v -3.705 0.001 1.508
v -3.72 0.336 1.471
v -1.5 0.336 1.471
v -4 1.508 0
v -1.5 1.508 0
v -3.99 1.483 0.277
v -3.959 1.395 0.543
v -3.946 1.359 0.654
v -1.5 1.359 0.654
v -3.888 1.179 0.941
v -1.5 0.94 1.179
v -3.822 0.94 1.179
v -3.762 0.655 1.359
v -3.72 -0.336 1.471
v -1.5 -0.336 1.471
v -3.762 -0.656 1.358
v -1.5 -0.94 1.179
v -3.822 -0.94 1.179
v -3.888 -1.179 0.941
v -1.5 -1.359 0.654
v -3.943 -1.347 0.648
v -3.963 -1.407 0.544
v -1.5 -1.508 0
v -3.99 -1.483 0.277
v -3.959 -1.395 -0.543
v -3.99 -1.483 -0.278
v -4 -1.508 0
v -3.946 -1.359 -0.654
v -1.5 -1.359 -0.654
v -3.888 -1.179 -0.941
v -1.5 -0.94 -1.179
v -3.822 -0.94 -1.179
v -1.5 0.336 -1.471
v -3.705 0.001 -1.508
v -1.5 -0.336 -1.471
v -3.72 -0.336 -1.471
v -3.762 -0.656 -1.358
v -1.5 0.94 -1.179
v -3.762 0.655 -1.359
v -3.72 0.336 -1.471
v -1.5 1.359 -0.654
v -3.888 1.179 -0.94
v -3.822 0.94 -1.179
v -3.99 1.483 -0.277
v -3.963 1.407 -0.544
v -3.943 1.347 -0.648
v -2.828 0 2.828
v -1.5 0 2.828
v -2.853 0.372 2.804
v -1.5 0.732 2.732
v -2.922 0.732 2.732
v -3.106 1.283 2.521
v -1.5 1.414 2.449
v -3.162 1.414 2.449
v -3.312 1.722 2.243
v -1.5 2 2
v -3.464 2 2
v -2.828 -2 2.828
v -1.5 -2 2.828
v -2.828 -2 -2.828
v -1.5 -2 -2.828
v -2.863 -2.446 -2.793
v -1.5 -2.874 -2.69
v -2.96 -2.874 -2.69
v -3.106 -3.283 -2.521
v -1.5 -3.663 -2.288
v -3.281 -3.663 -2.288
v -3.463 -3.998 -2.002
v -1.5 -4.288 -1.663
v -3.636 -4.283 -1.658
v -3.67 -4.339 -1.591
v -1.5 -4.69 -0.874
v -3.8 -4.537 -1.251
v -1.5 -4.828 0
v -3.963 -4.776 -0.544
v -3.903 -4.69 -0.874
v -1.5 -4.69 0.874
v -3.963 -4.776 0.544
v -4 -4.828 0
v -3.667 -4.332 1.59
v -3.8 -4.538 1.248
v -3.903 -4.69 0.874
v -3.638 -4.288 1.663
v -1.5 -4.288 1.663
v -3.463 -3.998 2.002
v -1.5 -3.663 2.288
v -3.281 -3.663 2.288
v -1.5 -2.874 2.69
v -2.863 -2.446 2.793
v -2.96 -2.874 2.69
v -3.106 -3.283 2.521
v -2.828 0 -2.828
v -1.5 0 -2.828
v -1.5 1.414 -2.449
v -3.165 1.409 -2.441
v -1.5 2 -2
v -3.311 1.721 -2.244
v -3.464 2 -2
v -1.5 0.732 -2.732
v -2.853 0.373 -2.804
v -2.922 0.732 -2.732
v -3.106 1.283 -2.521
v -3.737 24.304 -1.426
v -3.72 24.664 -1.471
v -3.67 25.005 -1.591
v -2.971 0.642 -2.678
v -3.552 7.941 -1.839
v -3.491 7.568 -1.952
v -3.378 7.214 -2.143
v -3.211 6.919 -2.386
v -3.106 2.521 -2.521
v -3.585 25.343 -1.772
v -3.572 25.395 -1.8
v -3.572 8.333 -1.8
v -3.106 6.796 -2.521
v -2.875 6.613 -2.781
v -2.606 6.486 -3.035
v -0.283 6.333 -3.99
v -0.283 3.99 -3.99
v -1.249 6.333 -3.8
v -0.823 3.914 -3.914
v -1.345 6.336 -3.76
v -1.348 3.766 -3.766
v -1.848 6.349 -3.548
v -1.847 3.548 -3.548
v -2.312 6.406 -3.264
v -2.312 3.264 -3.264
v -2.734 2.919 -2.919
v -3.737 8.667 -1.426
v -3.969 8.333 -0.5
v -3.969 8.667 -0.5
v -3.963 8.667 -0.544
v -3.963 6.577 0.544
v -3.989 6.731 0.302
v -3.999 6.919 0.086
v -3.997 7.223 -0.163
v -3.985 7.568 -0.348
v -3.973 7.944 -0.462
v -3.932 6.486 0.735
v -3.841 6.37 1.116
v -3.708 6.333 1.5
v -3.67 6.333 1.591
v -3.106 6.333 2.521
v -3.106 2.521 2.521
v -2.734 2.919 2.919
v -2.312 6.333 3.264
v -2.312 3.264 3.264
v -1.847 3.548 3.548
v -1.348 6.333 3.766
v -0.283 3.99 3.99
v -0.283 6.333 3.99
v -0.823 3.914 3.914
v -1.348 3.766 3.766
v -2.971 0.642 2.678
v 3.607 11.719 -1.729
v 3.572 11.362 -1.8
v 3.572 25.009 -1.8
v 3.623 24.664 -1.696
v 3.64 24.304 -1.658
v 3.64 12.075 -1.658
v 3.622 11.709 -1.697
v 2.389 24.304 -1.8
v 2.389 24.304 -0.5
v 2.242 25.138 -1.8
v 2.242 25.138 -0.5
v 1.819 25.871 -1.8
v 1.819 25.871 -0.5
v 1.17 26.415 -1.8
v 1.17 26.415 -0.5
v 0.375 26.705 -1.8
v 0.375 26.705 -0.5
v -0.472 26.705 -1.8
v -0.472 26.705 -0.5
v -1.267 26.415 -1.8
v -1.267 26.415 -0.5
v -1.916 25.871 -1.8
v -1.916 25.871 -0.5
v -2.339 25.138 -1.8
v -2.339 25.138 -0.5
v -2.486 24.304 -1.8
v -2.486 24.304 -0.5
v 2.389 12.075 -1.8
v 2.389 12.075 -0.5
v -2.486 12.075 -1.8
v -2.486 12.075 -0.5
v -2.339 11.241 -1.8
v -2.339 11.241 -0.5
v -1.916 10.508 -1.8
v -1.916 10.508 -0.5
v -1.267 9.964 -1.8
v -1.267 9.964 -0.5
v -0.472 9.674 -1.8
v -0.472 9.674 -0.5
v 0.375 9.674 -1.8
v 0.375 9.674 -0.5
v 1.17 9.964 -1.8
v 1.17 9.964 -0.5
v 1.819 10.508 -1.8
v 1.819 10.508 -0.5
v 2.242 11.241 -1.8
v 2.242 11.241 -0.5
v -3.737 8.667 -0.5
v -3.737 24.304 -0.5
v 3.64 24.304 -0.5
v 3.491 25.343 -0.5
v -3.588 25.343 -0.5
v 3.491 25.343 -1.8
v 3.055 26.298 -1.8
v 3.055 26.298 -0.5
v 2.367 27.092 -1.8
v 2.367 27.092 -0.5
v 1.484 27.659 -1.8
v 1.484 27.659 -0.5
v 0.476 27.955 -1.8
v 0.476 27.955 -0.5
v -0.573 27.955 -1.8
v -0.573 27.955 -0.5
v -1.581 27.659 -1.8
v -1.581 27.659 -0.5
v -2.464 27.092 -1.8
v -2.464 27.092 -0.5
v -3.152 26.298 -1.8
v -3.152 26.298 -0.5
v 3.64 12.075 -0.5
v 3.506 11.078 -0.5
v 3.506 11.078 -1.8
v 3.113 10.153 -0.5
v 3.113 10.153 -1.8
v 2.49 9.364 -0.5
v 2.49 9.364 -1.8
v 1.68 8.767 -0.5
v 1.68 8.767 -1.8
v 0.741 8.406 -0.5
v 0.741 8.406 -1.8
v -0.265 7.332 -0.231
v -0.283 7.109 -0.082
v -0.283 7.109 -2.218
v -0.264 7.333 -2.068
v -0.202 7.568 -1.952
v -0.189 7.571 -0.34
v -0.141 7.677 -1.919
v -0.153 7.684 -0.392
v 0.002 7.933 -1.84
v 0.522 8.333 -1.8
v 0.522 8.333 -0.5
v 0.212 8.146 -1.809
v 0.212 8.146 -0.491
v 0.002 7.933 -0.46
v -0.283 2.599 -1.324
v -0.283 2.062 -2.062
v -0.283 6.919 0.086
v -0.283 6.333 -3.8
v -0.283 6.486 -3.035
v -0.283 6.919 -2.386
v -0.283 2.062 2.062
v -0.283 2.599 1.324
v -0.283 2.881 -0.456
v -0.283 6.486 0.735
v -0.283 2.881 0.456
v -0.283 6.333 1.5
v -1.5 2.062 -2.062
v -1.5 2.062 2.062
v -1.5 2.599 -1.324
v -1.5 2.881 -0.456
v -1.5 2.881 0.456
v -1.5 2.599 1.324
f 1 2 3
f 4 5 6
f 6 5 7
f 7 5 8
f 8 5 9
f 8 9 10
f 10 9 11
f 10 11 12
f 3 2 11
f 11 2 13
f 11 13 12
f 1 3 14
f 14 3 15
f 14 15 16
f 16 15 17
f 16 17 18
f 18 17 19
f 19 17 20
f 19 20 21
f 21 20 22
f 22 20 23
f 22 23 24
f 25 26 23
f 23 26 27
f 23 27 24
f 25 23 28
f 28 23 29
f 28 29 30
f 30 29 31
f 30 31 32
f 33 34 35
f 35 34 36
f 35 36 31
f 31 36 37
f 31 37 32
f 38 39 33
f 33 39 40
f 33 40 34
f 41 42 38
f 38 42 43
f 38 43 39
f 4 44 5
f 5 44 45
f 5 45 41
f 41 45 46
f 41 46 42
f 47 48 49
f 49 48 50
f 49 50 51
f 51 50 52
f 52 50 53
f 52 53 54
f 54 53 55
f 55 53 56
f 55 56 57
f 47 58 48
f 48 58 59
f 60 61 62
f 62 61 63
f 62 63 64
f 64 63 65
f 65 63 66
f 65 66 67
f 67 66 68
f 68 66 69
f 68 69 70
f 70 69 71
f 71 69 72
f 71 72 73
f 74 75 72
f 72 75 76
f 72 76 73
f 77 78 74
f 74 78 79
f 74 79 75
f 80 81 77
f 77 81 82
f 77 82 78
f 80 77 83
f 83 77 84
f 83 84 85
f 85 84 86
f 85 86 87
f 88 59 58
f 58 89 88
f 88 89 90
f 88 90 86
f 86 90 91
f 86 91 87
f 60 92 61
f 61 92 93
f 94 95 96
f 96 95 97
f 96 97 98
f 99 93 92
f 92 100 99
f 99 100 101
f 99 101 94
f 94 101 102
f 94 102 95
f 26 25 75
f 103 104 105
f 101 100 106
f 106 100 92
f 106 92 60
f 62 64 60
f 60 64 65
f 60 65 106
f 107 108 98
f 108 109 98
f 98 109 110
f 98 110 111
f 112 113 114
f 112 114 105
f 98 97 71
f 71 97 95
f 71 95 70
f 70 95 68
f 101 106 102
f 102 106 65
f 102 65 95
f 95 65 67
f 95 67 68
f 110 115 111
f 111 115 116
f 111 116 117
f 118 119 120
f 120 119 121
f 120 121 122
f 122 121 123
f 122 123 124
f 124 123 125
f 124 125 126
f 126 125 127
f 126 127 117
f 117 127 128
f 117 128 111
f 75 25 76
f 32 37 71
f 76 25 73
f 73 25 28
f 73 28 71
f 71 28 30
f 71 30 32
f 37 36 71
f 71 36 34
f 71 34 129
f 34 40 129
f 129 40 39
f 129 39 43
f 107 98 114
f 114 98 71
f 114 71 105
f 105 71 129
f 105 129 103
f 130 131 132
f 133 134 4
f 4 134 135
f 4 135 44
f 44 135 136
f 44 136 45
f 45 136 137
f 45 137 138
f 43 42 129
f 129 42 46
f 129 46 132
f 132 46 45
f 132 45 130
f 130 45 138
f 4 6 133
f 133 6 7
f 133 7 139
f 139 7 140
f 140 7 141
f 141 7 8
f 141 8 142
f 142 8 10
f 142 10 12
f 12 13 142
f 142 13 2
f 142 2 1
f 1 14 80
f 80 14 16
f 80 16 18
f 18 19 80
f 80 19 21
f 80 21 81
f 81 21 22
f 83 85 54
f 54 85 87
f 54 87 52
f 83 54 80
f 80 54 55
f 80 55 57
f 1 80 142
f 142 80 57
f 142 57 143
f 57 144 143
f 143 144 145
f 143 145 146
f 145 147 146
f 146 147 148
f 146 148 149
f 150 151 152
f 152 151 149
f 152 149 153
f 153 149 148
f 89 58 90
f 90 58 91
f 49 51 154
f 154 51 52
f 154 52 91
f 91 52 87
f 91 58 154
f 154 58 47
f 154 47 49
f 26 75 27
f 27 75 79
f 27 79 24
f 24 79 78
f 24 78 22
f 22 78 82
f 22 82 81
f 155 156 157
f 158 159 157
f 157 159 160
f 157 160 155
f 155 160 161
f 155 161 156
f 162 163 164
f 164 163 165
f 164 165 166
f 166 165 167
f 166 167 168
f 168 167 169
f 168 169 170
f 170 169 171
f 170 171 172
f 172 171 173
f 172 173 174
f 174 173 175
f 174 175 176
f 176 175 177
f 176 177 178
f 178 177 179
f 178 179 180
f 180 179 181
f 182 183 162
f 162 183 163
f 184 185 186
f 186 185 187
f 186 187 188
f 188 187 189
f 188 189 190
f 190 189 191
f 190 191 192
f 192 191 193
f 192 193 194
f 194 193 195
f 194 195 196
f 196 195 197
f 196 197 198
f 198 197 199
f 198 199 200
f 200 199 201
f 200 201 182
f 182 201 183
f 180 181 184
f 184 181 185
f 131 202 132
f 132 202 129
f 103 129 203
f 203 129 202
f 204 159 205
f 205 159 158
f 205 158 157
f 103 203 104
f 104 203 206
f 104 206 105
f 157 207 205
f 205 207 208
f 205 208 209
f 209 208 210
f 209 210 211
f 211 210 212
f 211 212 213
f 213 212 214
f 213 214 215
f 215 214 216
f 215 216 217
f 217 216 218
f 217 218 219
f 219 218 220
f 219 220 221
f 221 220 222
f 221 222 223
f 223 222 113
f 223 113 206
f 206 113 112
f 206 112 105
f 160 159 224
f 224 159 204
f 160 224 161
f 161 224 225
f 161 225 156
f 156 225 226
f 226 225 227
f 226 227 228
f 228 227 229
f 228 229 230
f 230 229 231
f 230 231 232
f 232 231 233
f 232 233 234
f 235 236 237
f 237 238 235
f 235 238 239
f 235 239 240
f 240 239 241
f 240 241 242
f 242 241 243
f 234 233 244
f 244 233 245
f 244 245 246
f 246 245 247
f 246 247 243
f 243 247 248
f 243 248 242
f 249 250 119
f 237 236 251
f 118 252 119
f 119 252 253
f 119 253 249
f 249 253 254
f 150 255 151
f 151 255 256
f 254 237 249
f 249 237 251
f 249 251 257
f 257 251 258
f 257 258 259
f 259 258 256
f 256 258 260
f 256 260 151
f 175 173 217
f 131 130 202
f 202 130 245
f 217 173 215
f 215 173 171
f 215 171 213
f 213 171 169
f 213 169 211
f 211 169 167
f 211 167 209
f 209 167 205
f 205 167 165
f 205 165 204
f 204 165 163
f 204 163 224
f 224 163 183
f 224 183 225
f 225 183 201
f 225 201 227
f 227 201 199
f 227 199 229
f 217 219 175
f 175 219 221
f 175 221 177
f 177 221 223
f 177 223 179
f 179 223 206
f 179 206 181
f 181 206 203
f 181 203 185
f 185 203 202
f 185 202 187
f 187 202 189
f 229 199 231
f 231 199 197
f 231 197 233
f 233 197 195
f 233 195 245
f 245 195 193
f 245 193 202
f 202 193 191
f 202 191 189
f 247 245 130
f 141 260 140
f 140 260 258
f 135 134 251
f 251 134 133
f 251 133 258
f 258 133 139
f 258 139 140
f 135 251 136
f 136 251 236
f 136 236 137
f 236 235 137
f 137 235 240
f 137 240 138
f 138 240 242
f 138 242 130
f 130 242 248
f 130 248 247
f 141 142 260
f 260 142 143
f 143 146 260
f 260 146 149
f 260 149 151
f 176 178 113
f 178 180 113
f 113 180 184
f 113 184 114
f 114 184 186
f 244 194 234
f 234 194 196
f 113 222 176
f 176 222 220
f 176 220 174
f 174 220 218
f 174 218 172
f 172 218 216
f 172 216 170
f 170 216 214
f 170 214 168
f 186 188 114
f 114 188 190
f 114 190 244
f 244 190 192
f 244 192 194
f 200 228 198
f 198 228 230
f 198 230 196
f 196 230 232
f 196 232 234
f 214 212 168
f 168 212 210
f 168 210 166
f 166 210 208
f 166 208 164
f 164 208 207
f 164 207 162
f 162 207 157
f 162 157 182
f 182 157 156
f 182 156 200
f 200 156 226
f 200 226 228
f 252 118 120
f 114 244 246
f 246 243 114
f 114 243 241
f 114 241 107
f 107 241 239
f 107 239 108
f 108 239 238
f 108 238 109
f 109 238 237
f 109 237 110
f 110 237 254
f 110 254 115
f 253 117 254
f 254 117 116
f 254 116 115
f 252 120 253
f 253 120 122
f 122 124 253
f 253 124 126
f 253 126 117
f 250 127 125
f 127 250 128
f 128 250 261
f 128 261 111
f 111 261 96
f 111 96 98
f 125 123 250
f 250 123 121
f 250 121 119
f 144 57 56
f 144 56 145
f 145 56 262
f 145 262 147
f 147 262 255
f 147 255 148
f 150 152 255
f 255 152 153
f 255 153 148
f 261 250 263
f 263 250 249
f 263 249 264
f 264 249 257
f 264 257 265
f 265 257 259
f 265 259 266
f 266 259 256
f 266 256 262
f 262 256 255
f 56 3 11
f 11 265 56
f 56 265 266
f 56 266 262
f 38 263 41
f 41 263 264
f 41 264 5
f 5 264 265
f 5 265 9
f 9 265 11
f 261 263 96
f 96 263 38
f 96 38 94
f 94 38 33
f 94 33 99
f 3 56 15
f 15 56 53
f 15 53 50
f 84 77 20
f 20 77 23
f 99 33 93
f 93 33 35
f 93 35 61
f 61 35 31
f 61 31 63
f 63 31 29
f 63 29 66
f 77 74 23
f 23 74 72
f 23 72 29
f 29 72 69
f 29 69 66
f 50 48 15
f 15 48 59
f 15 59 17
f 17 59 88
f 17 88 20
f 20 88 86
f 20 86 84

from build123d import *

# Parameters (mm, degrees)
BOSS_EXTRUDE1_START = -8
SKETCH1_R           = 4
BOSS_EXTRUDE1_DEPTH = 38.1
SKETCH2_OUTSIDE_W   = 17.948
SKETCH2_OUTSIDE_H   = 48.048
CUT_EXTRUDE1_DEPTH  = 5
CUT_EXTRUDE2_DEPTH  = 30.290925305
SKETCH4_R           = 1.508332
CUT_EXTRUDE3_DEPTH  = 29.54645306
CUT_EXTRUDE4_DEPTH  = 1.216665


with BuildPart() as part:
    # Sketch1 → Boss-Extrude1 (new body)
    with BuildSketch(Plane(origin=(0, 0, 0), x_dir=(1, 0, 0), z_dir=(0, 1, 0)).offset(BOSS_EXTRUDE1_START)):
        with Locations(Location((0, 0, 0), (0, 0, 90))):
            Circle(SKETCH1_R)
    extrude(amount=BOSS_EXTRUDE1_DEPTH)

    # Sketch2 outside → Cut-Extrude1 (cut, symmetric)
    # profile 1 of 2: a face of its own
    with BuildSketch(Plane.XY):
        with Locations((0, 11.05)):
            Rectangle(SKETCH2_OUTSIDE_W, SKETCH2_OUTSIDE_H)
        with BuildLine():
            Line((-0.283333, -8), (-0.283333, 7.109115))
            ThreePointArc((-0.283333, 7.109115), (0.003787455, 7.935683585), (0.741491463, 8.406264691))
            ThreePointArc((0.741491463, 8.406264691), (2.828033272, 9.737268918), (3.64013247, 12.075157679))
            Line((3.64013247, 12.075157679), (3.64013247, 24.303947679))
            ThreePointArc((3.64013247, 24.303947679), (-0.04853801, 27.99261816), (-3.73720849, 24.303947679))
            Line((-3.73720849, 24.303947679), (-3.73720849, 8.666658))
            Line((-3.73720849, 8.666658), (-4, 8.666658))
            Line((-4, 8.666658), (-4, -8))
            Line((-4, -8), (-0.283333, -8))
        make_face(mode=Mode.SUBTRACT)
    # profile 2 of 2: a face of its own
    with BuildSketch(Plane.XY):
        with BuildLine():
            Line((2.38936199, 24.303947679), (2.38936199, 12.075157679))
            ThreePointArc((2.38936199, 12.075157679), (-0.04853801, 9.637257679), (-2.48643801, 12.075157679))
            Line((-2.48643801, 12.075157679), (-2.48643801, 24.303947679))
            ThreePointArc((-2.48643801, 24.303947679), (-0.04853801, 26.741847679), (2.38936199, 24.303947679))
        make_face()
    extrude(amount=CUT_EXTRUDE1_DEPTH, both=True, mode=Mode.SUBTRACT)

    # Sketch3 → Cut-Extrude2 (cut, through all)
    with BuildSketch(Plane(origin=(3.64013247, 0, 0), x_dir=(0, 0, -1), z_dir=(1, 0, 0))):
        with BuildLine():
            Line((-1.5, 6.333332), (-6.5, 6.333332))
            Line((-6.5, 6.333332), (-6.5, 36.333332))
            Line((-6.5, 36.333332), (0.5, 36.333332))
            Line((0.5, 36.333332), (0.5, 8.333332))
            ThreePointArc((0.5, 8.333332), (-0.085786438, 6.919118438), (-1.5, 6.333332))
        make_face()
        with BuildLine():
            Line((1.8, 36.333332), (1.8, 8.333332))
            ThreePointArc((1.8, 8.333332), (2.385786438, 6.919118438), (3.8, 6.333332))
            Line((3.8, 6.333332), (5.8, 6.333332))
            Line((5.8, 6.333332), (5.8, 36.333332))
            Line((5.8, 36.333332), (1.8, 36.333332))
        make_face()
    extrude(amount=-CUT_EXTRUDE2_DEPTH, mode=Mode.SUBTRACT)

    # Sketch4 → Cut-Extrude3 (cut, through all)
    with BuildSketch(Plane(origin=(-0.283333, 0, 0), x_dir=(0, 0, -1), z_dir=(1, 0, 0))):
        with Locations(Location((0, 0, 0), (0, 0, 90))):
            Circle(SKETCH4_R)
        with BuildLine():
            Line((-2.828427125, 0), (-2.828427125, -2))
            ThreePointArc((-2.828427125, -2), (0, -4.828427125), (2.828427125, -2))
            Line((2.828427125, -2), (2.828427125, 0))
            ThreePointArc((2.828427125, 0), (2.61312593, 1.0823922), (2, 2))
            Line((2, 2), (3.989952683, 3.989952683))
            Line((3.989952683, 3.989952683), (5, 3.989952683))
            Line((5, 3.989952683), (5, -11.010047317))
            Line((5, -11.010047317), (-5, -11.010047317))
            Line((-5, -11.010047317), (-5, 3.989952683))
            Line((-5, 3.989952683), (-3.989952683, 3.989952683))
            Line((-3.989952683, 3.989952683), (-2, 2))
            ThreePointArc((-2, 2), (-2.61312593, 1.0823922), (-2.828427125, 0))
        make_face()
    extrude(amount=-CUT_EXTRUDE3_DEPTH, mode=Mode.SUBTRACT)

    # Sketch5 → Cut-Extrude4 (cut)
    with BuildSketch(Plane(origin=(-0.283333, 0, 0), x_dir=(0, 0, -1), z_dir=(1, 0, 0))):
        with BuildLine():
            Line((-2.916664, 0), (-2.916664, -2.54))
            ThreePointArc((-2.916664, -2.54), (0, -5.456664), (2.916664, -2.54))
            Line((2.916664, -2.54), (2.916664, 0))
            ThreePointArc((2.916664, 0), (0, 2.916664), (-2.916664, 0))
        make_face()
    extrude(amount=-CUT_EXTRUDE4_DEPTH, mode=Mode.SUBTRACT)


solid = part.part
